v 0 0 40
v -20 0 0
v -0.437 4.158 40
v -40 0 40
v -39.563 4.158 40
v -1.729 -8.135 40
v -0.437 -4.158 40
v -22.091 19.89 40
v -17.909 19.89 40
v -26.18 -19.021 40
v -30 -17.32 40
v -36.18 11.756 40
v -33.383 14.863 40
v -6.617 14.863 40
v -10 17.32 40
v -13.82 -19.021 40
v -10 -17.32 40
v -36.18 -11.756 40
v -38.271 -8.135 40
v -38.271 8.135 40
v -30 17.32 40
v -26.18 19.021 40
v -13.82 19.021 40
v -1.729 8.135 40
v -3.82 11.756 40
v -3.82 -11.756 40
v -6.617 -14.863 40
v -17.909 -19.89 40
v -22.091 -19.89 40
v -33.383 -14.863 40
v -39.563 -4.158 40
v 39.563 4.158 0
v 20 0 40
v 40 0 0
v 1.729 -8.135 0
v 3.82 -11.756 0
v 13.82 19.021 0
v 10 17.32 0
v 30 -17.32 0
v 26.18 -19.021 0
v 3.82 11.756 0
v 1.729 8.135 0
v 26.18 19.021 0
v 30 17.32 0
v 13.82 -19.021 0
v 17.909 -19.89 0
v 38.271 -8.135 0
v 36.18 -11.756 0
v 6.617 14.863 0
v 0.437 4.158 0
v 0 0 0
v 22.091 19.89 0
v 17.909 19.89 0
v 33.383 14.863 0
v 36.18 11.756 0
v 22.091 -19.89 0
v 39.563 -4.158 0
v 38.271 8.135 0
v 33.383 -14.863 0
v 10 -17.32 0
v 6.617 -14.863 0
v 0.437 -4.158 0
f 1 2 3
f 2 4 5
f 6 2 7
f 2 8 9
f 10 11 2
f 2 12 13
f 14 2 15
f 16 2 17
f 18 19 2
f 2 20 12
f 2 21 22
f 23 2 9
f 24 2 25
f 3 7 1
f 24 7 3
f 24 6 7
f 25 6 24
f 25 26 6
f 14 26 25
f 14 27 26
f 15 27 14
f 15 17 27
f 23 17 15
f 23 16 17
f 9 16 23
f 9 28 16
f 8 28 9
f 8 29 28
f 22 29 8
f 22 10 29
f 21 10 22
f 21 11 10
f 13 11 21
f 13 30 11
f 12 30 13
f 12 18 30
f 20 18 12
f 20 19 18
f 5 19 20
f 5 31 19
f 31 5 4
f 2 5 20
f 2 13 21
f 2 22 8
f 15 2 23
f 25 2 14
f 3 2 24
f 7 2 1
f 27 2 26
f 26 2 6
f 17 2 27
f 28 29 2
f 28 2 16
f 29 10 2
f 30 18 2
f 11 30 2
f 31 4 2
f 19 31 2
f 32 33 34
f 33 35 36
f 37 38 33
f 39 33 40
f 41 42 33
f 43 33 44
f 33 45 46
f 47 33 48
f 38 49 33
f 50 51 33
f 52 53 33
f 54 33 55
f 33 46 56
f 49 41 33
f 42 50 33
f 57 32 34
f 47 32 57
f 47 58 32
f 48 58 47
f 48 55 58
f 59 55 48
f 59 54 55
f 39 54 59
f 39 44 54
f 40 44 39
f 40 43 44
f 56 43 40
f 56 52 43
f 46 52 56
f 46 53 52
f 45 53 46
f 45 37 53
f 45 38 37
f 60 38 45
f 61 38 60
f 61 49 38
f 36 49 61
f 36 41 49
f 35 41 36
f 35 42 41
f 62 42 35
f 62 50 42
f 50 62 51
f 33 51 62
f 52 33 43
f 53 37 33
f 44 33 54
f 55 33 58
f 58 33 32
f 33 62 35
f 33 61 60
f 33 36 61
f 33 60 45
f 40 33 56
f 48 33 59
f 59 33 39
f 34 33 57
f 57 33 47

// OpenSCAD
translate([-20, 0, 0])
cylinder(h=40, r1=0, r2=20);

translate([20, 0, 0])
cylinder(h=40, r1=20, r2=0);
